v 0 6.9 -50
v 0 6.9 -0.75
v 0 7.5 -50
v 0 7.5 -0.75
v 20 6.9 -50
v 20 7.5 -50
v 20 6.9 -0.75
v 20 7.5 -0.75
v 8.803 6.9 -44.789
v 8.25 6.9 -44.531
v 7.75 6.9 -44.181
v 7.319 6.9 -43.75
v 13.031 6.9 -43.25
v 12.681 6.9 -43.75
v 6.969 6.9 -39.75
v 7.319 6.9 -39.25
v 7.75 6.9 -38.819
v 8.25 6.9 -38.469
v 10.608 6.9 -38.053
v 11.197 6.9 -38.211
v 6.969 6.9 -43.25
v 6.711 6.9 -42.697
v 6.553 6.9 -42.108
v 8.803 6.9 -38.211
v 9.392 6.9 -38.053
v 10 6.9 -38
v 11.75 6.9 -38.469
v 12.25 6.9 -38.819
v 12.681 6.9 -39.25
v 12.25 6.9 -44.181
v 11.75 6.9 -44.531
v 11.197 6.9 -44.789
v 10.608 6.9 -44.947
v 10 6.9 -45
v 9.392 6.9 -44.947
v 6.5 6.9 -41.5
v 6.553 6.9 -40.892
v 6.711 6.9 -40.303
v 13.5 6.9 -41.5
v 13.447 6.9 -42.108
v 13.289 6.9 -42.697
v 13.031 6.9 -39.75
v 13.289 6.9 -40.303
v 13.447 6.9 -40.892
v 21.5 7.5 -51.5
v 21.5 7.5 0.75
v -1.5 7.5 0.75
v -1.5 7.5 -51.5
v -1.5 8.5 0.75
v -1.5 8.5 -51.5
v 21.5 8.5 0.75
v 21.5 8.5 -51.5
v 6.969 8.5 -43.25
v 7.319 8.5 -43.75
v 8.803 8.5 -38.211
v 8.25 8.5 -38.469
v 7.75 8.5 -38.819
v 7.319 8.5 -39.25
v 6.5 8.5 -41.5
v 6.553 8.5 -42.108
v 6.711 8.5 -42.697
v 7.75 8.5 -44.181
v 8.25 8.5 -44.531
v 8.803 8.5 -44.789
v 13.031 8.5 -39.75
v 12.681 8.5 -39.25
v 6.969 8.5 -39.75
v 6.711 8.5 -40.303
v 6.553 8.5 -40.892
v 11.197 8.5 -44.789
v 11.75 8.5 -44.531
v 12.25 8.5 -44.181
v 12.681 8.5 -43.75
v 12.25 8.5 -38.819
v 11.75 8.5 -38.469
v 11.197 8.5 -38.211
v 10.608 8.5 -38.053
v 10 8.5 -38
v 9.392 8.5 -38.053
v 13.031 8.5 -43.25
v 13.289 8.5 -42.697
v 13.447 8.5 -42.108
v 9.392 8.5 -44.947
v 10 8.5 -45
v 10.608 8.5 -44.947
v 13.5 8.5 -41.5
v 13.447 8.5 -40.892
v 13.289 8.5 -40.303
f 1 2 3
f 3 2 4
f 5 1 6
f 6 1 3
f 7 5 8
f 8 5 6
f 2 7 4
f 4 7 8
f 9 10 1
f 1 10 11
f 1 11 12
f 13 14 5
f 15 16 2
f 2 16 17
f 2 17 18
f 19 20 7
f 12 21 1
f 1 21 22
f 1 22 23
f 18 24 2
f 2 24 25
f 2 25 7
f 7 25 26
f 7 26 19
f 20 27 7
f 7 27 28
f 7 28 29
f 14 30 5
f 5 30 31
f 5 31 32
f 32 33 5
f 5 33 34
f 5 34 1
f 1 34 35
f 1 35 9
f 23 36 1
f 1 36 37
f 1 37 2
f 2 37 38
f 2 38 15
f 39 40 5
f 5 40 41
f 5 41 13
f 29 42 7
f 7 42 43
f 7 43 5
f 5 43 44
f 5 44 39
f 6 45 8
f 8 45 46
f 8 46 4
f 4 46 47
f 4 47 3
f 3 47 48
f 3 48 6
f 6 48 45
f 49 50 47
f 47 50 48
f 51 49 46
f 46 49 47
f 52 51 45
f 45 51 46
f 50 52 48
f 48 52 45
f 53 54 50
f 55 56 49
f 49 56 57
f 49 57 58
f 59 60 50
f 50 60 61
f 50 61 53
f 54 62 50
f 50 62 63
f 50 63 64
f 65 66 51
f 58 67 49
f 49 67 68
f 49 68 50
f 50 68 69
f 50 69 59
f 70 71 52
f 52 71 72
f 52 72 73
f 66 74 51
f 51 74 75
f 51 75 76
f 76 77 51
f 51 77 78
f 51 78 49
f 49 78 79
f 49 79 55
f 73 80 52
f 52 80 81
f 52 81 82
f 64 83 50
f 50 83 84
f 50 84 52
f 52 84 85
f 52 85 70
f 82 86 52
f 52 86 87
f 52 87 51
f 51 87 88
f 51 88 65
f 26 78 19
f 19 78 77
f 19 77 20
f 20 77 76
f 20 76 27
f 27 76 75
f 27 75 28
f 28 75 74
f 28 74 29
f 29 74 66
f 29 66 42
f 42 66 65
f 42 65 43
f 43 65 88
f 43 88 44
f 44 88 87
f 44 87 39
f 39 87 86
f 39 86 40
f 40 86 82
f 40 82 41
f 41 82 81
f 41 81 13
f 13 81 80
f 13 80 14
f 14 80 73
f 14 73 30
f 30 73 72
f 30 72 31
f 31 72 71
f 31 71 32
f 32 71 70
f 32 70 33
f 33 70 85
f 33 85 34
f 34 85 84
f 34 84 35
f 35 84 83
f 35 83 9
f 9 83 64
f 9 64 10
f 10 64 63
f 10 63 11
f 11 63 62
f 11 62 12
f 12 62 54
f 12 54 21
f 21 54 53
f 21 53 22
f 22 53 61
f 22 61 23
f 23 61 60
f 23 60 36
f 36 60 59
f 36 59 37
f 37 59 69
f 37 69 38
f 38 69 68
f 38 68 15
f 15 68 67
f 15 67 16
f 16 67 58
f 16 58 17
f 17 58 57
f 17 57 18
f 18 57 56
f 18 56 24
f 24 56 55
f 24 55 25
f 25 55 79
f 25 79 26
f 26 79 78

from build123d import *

# Parameters (mm, degrees)
SKETCH1_W           = 20
SKETCH1_H           = 49.25
BOSS_EXTRUDE1_DEPTH = 0.6
SKETCH2_W           = 23
SKETCH2_H           = 52.25
BOSS_EXTRUDE2_DEPTH = 1
SKETCH3_R           = 3.5
CUT_EXTRUDE1_DEPTH  = 10


with BuildPart() as part:
    # Sketch1 → Boss-Extrude1 (new body)
    with BuildSketch(Plane(origin=(0, 7.5, 0), x_dir=(1, 0, 0), z_dir=(0, 1, 0))):
        with Locations((10, 25.375)):
            Rectangle(SKETCH1_W, SKETCH1_H)
    extrude(amount=-BOSS_EXTRUDE1_DEPTH)

    # Sketch2 → Boss-Extrude2 (add)
    with BuildSketch(Plane(origin=(0, 7.5, 0), x_dir=(1, 0, 0), z_dir=(0, 1, 0))):
        with Locations((10, 25.375)):
            Rectangle(SKETCH2_W, SKETCH2_H)
    extrude(amount=BOSS_EXTRUDE2_DEPTH)

    # Sketch3 → Cut-Extrude1 (cut)
    with BuildSketch(Plane(origin=(0, 8.5, 0), x_dir=(1, 0, 0), z_dir=(0, 1, 0))):
        with Locations((10, 41.5)):
            Circle(SKETCH3_R)
    extrude(amount=-CUT_EXTRUDE1_DEPTH, mode=Mode.SUBTRACT)


solid = part.part
